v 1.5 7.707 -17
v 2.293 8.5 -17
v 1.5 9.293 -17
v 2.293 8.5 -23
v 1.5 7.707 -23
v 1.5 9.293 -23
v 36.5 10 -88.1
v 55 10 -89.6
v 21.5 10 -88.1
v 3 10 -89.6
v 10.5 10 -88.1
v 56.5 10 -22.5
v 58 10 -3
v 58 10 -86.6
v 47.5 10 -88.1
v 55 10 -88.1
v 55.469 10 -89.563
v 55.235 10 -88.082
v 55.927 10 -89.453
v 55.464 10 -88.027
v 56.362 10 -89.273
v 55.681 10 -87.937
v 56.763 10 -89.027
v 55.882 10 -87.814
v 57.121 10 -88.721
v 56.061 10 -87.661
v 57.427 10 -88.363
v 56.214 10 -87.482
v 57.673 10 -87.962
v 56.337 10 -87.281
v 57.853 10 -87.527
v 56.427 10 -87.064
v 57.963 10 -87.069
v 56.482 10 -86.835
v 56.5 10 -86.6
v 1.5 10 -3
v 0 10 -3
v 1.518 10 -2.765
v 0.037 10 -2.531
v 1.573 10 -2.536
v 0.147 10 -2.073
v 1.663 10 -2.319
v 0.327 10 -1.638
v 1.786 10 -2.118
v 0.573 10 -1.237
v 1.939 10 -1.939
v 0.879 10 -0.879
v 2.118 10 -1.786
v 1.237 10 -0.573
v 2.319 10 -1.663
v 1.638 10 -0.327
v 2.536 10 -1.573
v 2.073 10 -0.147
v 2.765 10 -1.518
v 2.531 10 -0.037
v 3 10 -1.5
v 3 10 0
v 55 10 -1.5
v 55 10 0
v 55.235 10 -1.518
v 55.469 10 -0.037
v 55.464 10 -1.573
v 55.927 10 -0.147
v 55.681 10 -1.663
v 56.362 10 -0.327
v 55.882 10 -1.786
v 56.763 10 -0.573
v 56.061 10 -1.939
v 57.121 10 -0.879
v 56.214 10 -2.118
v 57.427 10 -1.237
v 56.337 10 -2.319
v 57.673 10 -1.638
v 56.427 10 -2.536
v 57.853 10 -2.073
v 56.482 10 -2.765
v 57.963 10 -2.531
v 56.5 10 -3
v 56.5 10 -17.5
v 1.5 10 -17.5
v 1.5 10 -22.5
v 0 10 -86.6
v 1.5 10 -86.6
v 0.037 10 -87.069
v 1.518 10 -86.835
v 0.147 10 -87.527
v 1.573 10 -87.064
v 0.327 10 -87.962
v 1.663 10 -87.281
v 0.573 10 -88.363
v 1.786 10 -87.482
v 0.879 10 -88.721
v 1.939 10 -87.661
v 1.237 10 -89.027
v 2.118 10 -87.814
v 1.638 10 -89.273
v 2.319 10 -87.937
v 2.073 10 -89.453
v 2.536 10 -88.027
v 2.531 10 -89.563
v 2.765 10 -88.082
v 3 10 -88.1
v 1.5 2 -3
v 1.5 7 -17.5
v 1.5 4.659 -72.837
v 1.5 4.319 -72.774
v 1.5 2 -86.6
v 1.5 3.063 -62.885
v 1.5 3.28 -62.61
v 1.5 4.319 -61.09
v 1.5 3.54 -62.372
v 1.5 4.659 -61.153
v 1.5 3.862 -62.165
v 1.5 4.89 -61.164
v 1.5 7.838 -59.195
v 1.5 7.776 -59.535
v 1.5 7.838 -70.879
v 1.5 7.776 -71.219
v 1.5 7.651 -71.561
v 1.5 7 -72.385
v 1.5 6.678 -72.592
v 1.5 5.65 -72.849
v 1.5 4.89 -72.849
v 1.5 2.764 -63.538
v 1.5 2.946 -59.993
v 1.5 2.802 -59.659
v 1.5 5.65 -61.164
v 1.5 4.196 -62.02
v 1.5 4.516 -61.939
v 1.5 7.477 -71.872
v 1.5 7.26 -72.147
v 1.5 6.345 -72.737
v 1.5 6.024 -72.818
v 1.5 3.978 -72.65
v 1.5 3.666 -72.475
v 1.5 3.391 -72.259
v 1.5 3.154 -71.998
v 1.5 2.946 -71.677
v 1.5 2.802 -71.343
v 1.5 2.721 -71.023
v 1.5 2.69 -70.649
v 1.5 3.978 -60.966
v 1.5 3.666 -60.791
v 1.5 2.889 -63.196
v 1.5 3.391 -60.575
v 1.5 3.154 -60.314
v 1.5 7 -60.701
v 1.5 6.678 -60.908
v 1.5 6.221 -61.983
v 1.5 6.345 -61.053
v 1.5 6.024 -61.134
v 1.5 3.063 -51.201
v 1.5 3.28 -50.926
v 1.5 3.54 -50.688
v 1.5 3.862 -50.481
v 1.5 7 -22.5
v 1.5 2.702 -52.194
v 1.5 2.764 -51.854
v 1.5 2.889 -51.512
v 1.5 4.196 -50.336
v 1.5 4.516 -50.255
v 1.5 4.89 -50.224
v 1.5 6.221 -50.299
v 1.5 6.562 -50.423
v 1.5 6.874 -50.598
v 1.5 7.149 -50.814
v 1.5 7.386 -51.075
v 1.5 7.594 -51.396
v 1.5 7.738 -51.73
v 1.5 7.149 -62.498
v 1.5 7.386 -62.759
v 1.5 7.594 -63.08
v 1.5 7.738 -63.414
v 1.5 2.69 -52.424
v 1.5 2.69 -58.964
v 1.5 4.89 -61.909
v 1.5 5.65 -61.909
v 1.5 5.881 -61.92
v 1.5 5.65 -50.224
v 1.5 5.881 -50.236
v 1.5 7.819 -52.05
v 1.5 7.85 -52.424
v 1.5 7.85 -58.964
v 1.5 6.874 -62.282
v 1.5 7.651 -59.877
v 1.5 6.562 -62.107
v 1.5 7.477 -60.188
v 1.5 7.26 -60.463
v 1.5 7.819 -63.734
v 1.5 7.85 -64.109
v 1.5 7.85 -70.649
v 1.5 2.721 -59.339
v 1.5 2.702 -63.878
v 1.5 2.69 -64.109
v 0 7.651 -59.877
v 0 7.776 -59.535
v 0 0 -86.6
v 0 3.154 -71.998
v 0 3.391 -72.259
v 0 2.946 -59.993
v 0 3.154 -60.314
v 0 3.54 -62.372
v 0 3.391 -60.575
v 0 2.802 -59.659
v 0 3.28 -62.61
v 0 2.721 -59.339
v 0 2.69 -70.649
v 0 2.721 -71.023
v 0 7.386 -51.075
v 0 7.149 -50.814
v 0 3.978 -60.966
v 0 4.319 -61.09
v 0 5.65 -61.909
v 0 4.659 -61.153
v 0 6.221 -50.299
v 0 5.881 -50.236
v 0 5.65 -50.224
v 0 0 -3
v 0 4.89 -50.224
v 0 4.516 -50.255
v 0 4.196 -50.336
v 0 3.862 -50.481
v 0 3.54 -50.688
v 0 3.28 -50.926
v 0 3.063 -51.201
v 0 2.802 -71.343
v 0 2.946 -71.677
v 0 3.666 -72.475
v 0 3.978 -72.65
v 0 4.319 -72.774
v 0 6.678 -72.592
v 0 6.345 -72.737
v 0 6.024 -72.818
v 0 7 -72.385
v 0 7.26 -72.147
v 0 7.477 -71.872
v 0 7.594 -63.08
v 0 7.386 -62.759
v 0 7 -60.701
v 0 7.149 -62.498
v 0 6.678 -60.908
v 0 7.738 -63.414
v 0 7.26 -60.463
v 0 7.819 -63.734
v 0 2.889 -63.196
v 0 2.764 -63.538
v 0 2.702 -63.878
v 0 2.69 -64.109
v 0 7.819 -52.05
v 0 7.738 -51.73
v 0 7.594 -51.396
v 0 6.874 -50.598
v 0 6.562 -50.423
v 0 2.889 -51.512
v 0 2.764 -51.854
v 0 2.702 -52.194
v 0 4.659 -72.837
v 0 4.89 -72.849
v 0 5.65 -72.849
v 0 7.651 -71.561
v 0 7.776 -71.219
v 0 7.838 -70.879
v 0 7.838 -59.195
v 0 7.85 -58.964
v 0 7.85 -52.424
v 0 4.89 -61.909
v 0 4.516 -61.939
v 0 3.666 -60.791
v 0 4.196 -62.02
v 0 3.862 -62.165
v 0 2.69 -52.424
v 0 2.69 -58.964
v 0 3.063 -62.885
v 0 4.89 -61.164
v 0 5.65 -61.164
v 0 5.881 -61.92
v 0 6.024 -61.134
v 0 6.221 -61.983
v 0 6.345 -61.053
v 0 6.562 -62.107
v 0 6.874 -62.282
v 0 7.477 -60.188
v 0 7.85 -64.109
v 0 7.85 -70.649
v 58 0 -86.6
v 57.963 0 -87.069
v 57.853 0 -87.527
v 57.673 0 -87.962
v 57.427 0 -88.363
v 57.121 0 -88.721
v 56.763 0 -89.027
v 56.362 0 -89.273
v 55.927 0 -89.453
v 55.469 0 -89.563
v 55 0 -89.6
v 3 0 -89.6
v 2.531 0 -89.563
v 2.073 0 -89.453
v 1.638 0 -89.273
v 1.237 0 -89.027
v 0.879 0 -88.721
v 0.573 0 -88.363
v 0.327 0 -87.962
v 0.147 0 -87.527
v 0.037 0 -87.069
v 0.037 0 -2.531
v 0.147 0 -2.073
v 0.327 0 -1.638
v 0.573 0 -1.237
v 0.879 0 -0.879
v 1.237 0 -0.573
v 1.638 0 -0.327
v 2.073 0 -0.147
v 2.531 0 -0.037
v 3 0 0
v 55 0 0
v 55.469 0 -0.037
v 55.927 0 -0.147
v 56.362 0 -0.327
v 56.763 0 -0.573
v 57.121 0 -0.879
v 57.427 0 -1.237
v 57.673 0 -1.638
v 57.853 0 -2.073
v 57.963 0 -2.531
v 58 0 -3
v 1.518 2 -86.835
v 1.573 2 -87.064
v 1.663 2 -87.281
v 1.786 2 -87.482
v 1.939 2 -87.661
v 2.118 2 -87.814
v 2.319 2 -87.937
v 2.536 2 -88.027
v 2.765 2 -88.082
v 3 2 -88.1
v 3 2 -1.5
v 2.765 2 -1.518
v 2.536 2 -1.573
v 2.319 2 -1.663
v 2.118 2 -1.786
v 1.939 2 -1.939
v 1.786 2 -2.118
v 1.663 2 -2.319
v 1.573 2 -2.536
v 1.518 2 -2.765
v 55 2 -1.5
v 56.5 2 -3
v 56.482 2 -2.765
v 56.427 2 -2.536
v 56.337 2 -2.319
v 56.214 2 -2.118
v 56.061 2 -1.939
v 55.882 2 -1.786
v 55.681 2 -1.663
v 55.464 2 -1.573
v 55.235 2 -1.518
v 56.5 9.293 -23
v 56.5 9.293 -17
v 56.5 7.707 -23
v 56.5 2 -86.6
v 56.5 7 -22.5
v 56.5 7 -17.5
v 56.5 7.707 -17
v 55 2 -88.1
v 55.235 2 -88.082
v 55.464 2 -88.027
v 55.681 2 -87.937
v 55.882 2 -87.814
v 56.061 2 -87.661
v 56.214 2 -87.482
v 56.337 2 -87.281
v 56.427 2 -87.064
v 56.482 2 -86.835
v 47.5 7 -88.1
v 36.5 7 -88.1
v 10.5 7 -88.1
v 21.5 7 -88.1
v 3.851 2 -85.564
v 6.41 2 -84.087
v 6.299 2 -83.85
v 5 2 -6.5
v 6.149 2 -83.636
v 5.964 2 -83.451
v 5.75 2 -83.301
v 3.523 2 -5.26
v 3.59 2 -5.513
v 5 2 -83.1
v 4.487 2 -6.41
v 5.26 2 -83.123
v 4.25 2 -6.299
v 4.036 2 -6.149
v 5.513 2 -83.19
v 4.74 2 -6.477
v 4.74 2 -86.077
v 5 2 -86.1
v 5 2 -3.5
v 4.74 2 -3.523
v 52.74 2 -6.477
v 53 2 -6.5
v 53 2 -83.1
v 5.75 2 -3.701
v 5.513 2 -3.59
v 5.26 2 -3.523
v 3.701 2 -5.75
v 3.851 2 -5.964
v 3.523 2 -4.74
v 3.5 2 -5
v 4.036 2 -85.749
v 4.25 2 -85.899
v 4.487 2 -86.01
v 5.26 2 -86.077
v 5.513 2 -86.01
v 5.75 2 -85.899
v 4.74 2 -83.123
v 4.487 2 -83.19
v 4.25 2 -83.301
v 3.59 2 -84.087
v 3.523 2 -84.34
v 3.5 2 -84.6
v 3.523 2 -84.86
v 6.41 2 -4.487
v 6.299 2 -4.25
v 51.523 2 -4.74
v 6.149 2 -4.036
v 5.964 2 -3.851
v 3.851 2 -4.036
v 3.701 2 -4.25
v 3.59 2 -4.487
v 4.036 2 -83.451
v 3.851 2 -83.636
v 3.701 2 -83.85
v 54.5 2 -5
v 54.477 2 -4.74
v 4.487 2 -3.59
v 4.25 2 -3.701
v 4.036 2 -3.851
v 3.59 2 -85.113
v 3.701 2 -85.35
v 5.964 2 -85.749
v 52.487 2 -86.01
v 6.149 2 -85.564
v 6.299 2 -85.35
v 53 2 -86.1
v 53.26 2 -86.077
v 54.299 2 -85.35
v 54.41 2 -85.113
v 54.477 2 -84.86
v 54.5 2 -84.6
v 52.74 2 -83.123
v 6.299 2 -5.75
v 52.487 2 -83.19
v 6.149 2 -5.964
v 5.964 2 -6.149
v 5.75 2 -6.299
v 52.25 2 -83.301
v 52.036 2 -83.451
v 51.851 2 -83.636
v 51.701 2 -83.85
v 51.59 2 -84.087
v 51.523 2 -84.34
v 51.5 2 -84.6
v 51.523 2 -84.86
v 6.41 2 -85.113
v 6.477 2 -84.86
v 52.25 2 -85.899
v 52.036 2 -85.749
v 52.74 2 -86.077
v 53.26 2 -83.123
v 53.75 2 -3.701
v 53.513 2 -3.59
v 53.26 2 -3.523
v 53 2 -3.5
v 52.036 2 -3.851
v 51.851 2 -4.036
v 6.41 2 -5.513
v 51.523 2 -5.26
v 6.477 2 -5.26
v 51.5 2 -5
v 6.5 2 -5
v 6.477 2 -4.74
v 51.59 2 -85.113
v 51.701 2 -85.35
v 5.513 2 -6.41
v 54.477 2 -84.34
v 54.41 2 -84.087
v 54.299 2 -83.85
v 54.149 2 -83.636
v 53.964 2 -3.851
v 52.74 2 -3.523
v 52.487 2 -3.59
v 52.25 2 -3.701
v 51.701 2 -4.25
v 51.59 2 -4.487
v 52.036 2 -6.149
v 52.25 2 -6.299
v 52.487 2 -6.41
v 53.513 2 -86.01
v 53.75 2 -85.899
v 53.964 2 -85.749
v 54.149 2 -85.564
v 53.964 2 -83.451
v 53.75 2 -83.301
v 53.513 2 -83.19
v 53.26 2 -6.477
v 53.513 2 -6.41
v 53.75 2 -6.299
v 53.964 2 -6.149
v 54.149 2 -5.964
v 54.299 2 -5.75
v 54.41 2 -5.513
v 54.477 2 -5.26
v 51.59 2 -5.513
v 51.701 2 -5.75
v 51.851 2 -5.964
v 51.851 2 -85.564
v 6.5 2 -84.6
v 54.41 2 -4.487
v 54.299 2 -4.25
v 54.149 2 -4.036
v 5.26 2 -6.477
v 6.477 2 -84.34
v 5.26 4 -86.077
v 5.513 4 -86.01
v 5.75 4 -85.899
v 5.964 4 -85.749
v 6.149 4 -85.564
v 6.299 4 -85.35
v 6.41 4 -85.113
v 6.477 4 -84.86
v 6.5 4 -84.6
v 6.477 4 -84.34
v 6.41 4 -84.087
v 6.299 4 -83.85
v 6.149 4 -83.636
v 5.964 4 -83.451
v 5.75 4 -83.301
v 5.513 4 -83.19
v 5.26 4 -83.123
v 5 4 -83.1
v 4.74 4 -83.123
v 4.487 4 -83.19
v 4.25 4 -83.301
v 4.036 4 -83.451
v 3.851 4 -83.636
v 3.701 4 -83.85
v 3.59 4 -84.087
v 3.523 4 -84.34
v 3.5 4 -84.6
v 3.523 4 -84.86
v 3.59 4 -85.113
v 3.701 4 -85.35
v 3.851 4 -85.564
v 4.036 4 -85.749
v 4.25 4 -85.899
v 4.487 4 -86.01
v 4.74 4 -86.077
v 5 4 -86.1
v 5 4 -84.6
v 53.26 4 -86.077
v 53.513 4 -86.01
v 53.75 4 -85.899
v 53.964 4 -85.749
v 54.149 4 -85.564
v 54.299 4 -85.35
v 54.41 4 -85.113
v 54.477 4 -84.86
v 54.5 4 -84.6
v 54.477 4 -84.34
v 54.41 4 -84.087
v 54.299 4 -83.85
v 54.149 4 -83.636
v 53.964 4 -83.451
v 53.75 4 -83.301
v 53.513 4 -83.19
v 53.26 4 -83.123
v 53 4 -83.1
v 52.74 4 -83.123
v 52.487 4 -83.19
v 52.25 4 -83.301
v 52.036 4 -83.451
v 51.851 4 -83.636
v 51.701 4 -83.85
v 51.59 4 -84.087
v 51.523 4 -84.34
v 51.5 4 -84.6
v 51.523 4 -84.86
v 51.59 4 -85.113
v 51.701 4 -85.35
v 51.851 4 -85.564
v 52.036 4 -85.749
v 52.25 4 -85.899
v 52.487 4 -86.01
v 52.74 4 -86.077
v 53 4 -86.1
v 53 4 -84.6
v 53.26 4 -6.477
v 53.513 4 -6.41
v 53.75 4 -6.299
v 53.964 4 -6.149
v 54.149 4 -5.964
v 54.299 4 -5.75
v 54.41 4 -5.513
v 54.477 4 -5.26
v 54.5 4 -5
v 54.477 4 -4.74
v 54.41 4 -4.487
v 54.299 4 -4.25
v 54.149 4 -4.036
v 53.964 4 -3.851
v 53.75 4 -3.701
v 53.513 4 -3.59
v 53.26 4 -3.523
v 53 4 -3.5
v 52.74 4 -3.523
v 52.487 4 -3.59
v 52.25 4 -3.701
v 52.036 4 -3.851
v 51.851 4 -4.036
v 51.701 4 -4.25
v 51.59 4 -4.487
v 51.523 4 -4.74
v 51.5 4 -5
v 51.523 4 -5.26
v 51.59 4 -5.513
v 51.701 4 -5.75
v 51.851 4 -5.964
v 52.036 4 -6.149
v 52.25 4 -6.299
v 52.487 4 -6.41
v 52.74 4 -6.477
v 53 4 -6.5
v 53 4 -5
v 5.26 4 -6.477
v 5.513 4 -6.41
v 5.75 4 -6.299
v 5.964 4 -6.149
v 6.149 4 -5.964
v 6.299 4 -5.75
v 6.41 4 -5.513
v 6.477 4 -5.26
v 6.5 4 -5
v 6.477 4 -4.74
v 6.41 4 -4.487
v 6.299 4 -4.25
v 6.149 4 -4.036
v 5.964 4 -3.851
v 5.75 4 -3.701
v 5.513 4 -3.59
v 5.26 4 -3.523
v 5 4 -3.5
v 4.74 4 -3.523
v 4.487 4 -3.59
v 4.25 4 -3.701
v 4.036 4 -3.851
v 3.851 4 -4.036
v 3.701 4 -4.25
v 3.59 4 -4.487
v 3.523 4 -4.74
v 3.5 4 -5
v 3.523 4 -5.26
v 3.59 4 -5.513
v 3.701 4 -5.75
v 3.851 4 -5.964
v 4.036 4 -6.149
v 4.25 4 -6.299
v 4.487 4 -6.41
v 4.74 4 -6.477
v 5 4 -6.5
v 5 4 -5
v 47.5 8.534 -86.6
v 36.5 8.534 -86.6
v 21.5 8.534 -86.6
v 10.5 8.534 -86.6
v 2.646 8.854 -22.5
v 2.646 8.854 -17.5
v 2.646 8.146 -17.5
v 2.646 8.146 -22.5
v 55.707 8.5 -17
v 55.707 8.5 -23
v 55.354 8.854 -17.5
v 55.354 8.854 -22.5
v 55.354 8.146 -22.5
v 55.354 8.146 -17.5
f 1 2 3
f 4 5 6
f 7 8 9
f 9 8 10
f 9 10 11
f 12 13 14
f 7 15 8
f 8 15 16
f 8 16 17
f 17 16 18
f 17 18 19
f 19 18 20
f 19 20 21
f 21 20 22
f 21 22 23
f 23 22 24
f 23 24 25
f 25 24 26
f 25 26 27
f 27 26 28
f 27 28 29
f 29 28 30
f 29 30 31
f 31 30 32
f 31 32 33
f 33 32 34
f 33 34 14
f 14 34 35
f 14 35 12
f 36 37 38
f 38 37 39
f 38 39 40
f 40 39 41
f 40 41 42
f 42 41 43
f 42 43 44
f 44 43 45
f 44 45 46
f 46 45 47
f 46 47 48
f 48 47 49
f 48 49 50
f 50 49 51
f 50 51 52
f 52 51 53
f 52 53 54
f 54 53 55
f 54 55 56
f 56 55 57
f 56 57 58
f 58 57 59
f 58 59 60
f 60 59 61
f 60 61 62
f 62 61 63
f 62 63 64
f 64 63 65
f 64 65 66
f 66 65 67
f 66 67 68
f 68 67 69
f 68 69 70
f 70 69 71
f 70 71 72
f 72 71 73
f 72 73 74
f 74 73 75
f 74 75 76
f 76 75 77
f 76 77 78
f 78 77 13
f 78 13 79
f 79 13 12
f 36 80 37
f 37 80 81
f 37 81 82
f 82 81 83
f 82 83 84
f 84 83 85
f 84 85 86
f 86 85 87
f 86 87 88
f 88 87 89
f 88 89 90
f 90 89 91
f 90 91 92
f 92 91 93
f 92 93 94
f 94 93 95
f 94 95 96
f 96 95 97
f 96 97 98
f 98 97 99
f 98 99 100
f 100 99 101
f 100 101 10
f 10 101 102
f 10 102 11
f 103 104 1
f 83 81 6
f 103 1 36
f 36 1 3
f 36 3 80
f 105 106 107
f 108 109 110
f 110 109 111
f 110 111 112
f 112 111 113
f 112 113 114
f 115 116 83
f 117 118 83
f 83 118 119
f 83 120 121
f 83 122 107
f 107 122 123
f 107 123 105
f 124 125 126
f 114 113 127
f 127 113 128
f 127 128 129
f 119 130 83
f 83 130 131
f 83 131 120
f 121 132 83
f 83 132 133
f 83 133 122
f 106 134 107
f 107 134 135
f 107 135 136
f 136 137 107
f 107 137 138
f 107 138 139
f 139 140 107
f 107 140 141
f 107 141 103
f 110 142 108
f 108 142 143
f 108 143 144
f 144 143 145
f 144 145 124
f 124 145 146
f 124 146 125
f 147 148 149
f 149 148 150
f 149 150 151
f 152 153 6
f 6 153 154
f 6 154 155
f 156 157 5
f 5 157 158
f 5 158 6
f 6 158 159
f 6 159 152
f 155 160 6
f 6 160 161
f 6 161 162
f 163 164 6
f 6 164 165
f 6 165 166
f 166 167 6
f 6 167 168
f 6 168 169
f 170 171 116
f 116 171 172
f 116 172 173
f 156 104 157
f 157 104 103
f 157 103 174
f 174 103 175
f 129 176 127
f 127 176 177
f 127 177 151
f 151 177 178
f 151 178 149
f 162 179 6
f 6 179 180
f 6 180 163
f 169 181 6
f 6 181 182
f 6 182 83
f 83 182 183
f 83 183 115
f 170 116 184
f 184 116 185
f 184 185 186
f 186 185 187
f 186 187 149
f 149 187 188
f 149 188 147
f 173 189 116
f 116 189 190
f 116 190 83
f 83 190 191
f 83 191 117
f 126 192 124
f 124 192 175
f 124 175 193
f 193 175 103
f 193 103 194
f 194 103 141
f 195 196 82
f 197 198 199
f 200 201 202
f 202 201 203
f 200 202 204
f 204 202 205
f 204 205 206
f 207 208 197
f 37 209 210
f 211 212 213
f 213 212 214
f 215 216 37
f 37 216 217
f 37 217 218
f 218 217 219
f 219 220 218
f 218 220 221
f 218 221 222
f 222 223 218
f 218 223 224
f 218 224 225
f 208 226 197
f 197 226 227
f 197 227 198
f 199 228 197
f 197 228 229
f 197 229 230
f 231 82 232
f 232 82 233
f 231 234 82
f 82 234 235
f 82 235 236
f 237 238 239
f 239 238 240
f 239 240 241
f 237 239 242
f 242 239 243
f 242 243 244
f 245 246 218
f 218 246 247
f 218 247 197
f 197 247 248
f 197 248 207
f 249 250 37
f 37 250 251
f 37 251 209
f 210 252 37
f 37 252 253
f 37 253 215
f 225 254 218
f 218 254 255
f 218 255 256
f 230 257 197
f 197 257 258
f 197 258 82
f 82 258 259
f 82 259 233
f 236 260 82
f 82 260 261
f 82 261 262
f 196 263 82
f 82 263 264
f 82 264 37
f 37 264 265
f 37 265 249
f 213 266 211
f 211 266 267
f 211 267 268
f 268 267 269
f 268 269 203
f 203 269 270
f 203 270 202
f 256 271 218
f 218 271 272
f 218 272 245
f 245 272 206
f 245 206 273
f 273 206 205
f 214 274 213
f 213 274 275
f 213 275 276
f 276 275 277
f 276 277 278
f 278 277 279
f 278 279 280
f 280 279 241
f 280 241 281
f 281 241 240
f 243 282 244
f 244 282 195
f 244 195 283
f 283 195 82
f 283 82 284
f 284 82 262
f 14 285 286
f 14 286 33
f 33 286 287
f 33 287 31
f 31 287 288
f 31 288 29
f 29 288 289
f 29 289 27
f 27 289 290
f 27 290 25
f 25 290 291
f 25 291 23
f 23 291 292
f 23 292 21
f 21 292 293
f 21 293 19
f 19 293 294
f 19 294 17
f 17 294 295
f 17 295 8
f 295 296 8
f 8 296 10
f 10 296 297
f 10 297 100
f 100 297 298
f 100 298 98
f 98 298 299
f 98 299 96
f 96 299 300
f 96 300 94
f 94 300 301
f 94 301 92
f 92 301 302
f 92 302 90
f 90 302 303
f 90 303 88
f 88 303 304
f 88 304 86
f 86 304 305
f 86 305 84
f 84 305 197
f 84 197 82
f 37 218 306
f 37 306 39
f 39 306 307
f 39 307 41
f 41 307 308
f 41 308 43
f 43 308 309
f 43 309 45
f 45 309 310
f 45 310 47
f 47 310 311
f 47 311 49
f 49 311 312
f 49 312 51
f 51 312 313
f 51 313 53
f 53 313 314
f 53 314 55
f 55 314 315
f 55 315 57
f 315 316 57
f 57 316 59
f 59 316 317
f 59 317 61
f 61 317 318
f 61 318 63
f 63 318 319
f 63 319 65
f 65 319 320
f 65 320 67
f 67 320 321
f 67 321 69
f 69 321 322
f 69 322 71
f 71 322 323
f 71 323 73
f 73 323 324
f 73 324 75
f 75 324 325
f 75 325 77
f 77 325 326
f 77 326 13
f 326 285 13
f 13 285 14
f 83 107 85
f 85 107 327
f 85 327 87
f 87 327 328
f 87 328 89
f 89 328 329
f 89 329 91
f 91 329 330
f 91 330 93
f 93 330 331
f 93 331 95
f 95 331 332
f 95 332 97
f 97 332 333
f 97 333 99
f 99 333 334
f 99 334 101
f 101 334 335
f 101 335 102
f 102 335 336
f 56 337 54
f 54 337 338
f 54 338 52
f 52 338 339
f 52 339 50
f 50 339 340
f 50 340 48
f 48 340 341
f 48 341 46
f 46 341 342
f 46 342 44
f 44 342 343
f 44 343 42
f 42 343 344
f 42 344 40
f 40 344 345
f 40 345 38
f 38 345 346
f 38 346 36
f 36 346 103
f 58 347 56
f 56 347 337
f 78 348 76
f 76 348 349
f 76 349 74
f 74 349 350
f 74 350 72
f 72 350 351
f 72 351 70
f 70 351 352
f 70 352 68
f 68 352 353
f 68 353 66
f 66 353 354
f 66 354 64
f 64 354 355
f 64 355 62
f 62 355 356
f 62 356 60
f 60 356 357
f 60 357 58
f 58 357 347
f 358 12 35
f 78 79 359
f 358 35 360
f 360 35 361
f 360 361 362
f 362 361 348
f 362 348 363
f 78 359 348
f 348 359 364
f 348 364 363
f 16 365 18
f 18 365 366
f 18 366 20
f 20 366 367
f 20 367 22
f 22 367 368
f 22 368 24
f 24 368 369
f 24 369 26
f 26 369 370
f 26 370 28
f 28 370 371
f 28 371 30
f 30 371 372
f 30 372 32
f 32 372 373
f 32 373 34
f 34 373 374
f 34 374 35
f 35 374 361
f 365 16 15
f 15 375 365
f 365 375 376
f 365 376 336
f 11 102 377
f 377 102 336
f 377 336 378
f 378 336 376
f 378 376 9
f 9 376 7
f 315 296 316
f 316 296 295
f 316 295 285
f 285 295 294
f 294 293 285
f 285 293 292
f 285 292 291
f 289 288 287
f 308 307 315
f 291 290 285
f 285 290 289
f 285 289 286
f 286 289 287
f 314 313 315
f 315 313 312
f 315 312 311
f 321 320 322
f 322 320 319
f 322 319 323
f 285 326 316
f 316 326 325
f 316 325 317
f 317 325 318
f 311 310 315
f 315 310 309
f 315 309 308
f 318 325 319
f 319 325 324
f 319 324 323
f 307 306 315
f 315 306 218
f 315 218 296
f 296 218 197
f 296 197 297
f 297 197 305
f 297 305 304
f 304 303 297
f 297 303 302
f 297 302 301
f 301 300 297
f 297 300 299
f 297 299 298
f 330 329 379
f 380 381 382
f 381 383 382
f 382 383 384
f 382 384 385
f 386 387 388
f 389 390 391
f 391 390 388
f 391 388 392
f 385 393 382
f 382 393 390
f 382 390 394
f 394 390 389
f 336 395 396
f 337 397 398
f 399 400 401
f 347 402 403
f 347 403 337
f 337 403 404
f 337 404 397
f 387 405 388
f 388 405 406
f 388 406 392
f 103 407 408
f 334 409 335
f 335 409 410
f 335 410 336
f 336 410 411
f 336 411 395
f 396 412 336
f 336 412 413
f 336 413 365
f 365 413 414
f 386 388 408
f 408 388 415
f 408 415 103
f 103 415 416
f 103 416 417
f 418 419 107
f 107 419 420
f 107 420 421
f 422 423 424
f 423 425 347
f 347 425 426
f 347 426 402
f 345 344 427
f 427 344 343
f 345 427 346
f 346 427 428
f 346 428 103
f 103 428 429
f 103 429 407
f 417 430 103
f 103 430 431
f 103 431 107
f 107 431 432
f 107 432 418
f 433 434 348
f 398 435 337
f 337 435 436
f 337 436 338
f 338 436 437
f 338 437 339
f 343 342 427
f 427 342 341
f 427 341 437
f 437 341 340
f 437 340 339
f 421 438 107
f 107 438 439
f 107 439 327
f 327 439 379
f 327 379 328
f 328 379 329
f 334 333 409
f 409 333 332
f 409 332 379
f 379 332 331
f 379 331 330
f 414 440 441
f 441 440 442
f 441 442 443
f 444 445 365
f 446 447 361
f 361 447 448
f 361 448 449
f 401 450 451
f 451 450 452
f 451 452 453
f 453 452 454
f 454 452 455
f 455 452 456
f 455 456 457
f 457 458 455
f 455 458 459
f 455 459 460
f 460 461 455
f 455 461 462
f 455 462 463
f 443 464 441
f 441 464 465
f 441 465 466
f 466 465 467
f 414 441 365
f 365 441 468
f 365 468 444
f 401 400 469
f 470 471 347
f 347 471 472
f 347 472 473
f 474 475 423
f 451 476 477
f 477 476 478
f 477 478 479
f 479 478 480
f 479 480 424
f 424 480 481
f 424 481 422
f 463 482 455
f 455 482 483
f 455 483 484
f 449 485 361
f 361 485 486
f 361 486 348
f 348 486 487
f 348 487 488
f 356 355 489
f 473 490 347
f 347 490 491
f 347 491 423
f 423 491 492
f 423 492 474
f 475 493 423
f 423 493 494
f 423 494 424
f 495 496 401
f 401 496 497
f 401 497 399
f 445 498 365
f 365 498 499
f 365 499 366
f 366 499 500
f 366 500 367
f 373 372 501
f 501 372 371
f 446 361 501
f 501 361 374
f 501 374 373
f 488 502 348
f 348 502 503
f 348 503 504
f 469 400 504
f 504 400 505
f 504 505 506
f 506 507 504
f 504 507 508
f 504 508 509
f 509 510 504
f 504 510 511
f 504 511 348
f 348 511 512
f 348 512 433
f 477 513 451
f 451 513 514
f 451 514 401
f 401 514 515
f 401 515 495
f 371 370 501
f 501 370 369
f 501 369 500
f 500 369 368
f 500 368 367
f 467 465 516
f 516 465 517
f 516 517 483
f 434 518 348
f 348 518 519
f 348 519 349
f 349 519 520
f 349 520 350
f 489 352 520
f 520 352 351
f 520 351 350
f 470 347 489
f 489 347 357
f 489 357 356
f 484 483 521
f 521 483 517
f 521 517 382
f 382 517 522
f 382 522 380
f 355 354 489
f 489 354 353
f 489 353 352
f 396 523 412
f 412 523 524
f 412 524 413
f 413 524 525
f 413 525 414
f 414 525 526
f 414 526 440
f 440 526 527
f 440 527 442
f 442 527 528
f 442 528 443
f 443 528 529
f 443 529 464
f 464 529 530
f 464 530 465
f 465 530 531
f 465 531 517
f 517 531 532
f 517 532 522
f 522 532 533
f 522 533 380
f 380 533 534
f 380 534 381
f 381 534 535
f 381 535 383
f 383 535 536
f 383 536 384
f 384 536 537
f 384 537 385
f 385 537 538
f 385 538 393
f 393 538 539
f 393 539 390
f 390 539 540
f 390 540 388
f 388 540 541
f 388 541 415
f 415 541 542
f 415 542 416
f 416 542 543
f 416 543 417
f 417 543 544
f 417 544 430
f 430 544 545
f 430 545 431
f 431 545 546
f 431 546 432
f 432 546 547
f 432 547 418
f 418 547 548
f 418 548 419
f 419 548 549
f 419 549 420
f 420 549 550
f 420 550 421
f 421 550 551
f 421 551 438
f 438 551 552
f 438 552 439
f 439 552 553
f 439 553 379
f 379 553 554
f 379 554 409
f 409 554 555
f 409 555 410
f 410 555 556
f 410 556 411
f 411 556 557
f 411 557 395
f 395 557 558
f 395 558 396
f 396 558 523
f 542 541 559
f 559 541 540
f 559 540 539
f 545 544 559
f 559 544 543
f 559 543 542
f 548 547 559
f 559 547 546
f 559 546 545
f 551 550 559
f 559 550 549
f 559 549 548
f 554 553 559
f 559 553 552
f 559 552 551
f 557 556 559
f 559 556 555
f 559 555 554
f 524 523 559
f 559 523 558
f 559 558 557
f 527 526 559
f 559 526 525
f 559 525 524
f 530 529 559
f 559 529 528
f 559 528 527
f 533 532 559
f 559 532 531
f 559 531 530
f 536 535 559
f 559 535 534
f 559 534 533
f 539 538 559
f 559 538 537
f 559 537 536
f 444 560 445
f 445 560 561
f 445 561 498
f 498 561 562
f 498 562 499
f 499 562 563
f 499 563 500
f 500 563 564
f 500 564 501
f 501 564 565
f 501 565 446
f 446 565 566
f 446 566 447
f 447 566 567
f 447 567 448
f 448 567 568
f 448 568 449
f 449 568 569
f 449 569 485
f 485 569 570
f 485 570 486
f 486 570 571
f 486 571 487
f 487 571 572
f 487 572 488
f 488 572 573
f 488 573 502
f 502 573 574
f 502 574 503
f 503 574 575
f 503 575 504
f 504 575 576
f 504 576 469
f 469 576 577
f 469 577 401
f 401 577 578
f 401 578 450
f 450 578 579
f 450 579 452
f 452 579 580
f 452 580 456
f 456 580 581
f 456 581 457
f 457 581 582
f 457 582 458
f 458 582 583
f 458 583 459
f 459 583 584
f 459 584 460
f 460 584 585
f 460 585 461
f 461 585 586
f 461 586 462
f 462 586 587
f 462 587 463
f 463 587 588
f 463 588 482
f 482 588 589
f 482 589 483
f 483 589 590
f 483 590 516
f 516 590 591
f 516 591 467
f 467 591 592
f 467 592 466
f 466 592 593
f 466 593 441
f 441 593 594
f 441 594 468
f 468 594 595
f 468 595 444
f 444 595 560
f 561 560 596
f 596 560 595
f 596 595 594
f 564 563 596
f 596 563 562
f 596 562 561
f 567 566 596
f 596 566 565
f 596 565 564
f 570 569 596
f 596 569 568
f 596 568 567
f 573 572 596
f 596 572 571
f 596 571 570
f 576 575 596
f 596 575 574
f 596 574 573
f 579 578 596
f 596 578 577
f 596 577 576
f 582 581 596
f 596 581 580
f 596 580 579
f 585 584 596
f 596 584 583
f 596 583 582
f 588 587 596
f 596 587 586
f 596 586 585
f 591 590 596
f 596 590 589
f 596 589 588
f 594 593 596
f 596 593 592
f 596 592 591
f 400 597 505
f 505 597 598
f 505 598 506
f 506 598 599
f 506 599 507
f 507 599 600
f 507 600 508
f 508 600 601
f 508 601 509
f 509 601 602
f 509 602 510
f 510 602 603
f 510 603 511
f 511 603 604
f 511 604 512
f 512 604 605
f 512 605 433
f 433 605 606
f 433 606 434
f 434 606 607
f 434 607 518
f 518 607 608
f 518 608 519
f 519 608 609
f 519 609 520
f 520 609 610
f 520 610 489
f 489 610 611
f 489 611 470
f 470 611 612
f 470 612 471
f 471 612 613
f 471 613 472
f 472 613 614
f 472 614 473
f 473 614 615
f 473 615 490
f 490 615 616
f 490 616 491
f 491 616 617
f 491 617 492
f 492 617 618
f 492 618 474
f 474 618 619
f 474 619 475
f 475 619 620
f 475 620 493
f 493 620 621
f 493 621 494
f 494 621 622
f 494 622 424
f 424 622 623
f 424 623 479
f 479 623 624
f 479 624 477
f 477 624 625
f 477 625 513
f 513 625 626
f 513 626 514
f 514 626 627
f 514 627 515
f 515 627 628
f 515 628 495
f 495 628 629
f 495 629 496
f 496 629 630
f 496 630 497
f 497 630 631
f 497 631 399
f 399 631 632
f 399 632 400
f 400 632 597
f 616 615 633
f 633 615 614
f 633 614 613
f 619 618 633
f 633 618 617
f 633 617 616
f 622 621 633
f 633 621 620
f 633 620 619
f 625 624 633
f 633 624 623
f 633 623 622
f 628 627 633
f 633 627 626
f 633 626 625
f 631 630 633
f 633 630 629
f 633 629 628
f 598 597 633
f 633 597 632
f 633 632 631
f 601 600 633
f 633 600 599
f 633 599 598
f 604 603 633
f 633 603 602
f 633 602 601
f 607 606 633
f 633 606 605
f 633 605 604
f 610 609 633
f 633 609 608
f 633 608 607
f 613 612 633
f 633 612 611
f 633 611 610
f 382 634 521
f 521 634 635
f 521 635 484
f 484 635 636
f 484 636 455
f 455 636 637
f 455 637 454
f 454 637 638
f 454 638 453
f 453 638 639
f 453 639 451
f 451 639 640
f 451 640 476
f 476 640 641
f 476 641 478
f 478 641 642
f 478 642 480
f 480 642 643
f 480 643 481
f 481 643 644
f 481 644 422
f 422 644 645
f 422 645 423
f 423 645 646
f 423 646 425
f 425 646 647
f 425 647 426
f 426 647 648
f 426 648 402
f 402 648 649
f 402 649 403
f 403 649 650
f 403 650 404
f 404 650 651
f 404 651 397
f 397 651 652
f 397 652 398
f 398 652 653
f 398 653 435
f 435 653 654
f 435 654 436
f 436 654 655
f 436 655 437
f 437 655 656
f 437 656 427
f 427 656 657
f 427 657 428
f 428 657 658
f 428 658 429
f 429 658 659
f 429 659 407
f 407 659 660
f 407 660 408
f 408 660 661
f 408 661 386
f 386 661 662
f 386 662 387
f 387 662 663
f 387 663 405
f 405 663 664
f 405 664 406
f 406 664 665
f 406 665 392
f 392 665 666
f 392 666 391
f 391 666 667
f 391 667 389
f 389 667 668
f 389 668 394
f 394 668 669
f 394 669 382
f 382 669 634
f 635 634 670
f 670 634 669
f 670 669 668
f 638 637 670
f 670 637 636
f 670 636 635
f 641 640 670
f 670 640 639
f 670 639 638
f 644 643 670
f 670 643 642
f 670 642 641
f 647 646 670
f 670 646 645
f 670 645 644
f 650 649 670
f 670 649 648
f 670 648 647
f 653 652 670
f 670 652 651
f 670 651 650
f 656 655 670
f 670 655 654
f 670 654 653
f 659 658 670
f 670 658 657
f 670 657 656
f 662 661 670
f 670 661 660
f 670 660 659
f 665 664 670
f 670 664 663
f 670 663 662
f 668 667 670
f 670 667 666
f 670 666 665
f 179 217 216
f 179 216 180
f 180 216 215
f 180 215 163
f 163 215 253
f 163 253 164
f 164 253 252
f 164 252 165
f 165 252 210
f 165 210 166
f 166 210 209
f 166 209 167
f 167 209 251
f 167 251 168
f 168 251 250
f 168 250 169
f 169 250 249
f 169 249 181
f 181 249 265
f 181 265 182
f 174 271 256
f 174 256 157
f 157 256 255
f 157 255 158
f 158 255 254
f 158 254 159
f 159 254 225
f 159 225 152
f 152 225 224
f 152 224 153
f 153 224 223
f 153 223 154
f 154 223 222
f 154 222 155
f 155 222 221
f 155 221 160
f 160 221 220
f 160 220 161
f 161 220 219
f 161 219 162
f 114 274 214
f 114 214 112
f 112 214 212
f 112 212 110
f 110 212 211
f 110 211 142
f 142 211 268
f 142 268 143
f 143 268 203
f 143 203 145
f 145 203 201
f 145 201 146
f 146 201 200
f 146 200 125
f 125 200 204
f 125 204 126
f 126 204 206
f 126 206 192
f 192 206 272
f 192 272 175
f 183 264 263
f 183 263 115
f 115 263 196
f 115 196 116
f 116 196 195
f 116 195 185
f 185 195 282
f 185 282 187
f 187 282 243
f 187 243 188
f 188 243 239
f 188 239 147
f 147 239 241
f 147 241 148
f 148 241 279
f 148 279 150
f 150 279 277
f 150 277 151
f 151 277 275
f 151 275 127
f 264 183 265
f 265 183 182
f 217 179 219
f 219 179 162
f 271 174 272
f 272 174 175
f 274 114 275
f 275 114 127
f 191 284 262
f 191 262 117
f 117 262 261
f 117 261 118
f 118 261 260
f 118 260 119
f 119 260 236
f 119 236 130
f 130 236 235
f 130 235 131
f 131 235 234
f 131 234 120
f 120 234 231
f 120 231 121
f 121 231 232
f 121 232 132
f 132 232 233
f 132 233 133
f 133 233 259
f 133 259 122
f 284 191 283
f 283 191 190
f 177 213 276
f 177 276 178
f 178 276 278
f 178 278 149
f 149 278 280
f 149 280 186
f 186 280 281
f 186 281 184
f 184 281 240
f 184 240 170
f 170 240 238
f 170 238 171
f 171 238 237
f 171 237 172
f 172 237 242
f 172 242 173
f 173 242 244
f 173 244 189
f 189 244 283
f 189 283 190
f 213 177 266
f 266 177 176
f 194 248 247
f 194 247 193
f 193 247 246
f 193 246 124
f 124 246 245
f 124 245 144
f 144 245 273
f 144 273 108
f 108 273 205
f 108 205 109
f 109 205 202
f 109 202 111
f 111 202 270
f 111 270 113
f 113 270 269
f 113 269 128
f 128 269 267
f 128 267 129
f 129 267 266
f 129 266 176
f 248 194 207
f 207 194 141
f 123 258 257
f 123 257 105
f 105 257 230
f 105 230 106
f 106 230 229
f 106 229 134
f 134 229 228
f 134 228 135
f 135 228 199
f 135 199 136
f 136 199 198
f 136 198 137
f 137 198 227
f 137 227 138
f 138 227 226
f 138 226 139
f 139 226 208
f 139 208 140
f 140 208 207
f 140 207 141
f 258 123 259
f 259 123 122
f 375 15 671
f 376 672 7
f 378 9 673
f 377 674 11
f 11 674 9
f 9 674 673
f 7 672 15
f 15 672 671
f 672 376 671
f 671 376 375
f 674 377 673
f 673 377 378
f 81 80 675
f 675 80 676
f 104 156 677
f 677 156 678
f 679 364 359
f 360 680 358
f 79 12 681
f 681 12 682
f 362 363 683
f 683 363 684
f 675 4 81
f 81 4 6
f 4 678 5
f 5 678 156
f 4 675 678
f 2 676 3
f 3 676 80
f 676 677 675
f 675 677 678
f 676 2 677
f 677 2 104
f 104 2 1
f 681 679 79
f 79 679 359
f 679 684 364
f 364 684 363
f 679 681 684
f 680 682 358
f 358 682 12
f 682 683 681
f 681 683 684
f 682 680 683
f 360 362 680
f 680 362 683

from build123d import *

# Parameters (mm, degrees)
EXTRUDE_1_DEPTH     = 2
EXTRUDE_2_DEPTH     = 11
SKETCH_5_R          = 1.5
EXTRUDE_3_DEPTH     = 2
CUT_EXTRUDE_1_DEPTH = 2
CUT_EXTRUDE_START   = -3
CUT_EXTRUDE_2_DEPTH = 3
SKETCH_8_W          = 11
SKETCH_8_H          = 3
EXTRUDE_4_DEPTH     = 1.5
CUT_EXTRUDE_3_DEPTH = 40
SKETCH_11_W         = 6
SKETCH_11_H         = 3
EXTRUDE_5_DEPTH     = 1.5
CUT_EXTRUDE_4_DEPTH = 7
SKETCH_13_W         = 6
SKETCH_13_H         = 3
EXTRUDE_6_DEPTH     = 1.5
CUT_EXTRUDE_5_DEPTH = 7
CHAMFER_1_SIZE      = 0.5
CHAMFER_2_SIZE      = 0.5


with BuildPart() as part:
    # 草图1 → 凸台-拉伸1 (new body)
    with BuildSketch(Plane(origin=(0, 0, 0), x_dir=(1, 0, 0), z_dir=(0, 1, 0))):
        with BuildLine():
            Line((3, 0), (55, 0))
            ThreePointArc((55, 0), (57.121320344, 0.878679656), (58, 3))
            Line((58, 3), (58, 86.6))
            ThreePointArc((58, 86.6), (57.121320344, 88.721320344), (55, 89.6))
            Line((55, 89.6), (3, 89.6))
            ThreePointArc((3, 89.6), (0.878679656, 88.721320344), (0, 86.6))
            Line((0, 86.6), (0, 3))
            ThreePointArc((0, 3), (0.878679656, 0.878679656), (3, 0))
        make_face()
    extrude(amount=EXTRUDE_1_DEPTH)

    # 草图3 → 凸台-拉伸2 (add)
    with BuildSketch(Plane(origin=(0, 2, 0), x_dir=(1, 0, 0), z_dir=(0, 1, 0))):
        with BuildLine():
            Line((0, 86.6), (0, 3))
            ThreePointArc((0, 3), (0.878679656, 0.878679656), (3, 0))
            Line((3, 0), (55, 0))
            ThreePointArc((55, 0), (57.121320344, 0.878679656), (58, 3))
            Line((58, 3), (58, 86.6))
            ThreePointArc((58, 86.6), (57.121320344, 88.721320344), (55, 89.6))
            Line((55, 89.6), (3, 89.6))
            ThreePointArc((3, 89.6), (0.878679656, 88.721320344), (0, 86.6))
        make_face()
        with BuildLine():
            Line((1.5, 86.6), (1.5, 3))
            ThreePointArc((1.5, 3), (1.939339828, 1.939339828), (3, 1.5))
            Line((3, 1.5), (55, 1.5))
            ThreePointArc((55, 1.5), (56.060660172, 1.939339828), (56.5, 3))
            Line((56.5, 3), (56.5, 86.6))
            ThreePointArc((56.5, 86.6), (56.060660172, 87.660660172), (55, 88.1))
            Line((55, 88.1), (3, 88.1))
            ThreePointArc((3, 88.1), (1.939339828, 87.660660172), (1.5, 86.6))
        make_face(mode=Mode.SUBTRACT)
    extrude(amount=EXTRUDE_2_DEPTH)

    # 草图5 → 凸台-拉伸3 (add)
    with BuildSketch(Plane(origin=(0, 2, 0), x_dir=(1, 0, 0), z_dir=(0, 1, 0))):
        with Locations(Location((5, 84.6, 0), (0, 0, 270))):
            Circle(SKETCH_5_R)
        with Locations(Location((53, 84.6, 0), (0, 0, 90))):
            Circle(SKETCH_5_R)
        with Locations(Location((53, 5, 0), (0, 0, 270))):
            Circle(SKETCH_5_R)
        with Locations(Location((5, 5, 0), (0, 0, 90))):
            Circle(SKETCH_5_R)
    extrude(amount=EXTRUDE_3_DEPTH)

    # 草图6 → 切除-拉伸1 (cut)
    # profile 1 of 4: a face of its own
    with BuildSketch(Plane(origin=(0, 2, -82.999537719), x_dir=(0, 1, 0), z_dir=(-1, 0, 0))):
        with BuildLine():
            add(Edge.make_bspline(
                [(3.650025513, -10.151031112), (3.92482832, -10.151031112), (4.462198601, -10.245555275), (5.25406566, -10.746990965), (5.755501349, -11.538858023), (5.850025513, -12.076228304), (5.850025513, -12.351031112)],
                knots=[0, 0, 0, 0, 0.25, 0.5, 0.75, 1, 1, 1, 1], degree=3))
            Line((5.850025513, -12.351031112), (5.850025513, -18.891031112))
            add(Edge.make_bspline(
                [(5.850025513, -18.891031112), (5.850025513, -19.165833919), (5.755501349, -19.7032042), (5.25406566, -20.495071258), (4.462198601, -20.996506948), (3.92482832, -21.091031112), (3.650025513, -21.091031112)],
                knots=[0, 0, 0, 0, 0.25, 0.5, 0.75, 1, 1, 1, 1], degree=3))
            Line((3.650025513, -21.091031112), (2.890025513, -21.091031112))
            add(Edge.make_bspline(
                [(2.890025513, -21.091031112), (2.615222706, -21.091031112), (2.077852425, -20.996506948), (1.285985366, -20.495071258), (0.784549677, -19.7032042), (0.690025513, -19.165833919), (0.690025513, -18.891031112)],
                knots=[0, 0, 0, 0, 0.25, 0.5, 0.75, 1, 1, 1, 1], degree=3))
            Line((0.690025513, -18.891031112), (0.690025513, -12.351031112))
            add(Edge.make_bspline(
                [(0.690025513, -12.351031112), (0.690025513, -12.076228304), (0.784549677, -11.538858023), (1.285985366, -10.746990965), (2.077852425, -10.245555275), (2.615222706, -10.151031112), (2.890025513, -10.151031112)],
                knots=[0, 0, 0, 0, 0.25, 0.5, 0.75, 1, 1, 1, 1], degree=3))
            Line((2.890025513, -10.151031112), (3.650025513, -10.151031112))
        make_face()
        with BuildLine():
            Line((2.890025513, -11.151031112), (3.650025513, -11.151031112))
            add(Edge.make_bspline(
                [(3.650025513, -11.151031112), (4.352969238, -11.151031112), (4.850025513, -11.648087386), (4.850025513, -12.351031112)],
                knots=[0, 0, 0, 0, 1, 1, 1, 1], degree=3, weights=[1, 0.804737854, 0.804737854, 1]))
            Line((4.850025513, -12.351031112), (4.850025513, -18.891031112))
            add(Edge.make_bspline(
                [(4.850025513, -18.891031112), (4.850025513, -19.593974837), (4.352969238, -20.091031112), (3.650025513, -20.091031112)],
                knots=[0, 0, 0, 0, 1, 1, 1, 1], degree=3, weights=[1, 0.804737854, 0.804737854, 1]))
            Line((3.650025513, -20.091031112), (2.890025513, -20.091031112))
            add(Edge.make_bspline(
                [(2.890025513, -20.091031112), (2.187081788, -20.091031112), (1.690025513, -19.593974837), (1.690025513, -18.891031112)],
                knots=[0, 0, 0, 0, 1, 1, 1, 1], degree=3, weights=[1, 0.804737854, 0.804737854, 1]))
            Line((1.690025513, -18.891031112), (1.690025513, -12.351031112))
            add(Edge.make_bspline(
                [(1.690025513, -12.351031112), (1.690025513, -11.648087386), (2.187081788, -11.151031112), (2.890025513, -11.151031112)],
                knots=[0, 0, 0, 0, 1, 1, 1, 1], degree=3, weights=[1, 0.804737854, 0.804737854, 1]))
        make_face(mode=Mode.SUBTRACT)
    # profile 2 of 4: a face of its own
    with BuildSketch(Plane(origin=(0, 2, -82.999537719), x_dir=(0, 1, 0), z_dir=(-1, 0, 0))):
        with BuildLine():
            add(Edge.make_bspline(
                [(3.650025513, -11.151031112), (4.352969238, -11.151031112), (4.850025513, -11.648087386), (4.850025513, -12.351031112)],
                knots=[0, 0, 0, 0, 1, 1, 1, 1], degree=3, weights=[1, 0.804737854, 0.804737854, 1]))
            Line((4.850025513, -12.351031112), (4.850025513, -18.891031112))
            add(Edge.make_bspline(
                [(4.850025513, -18.891031112), (4.850025513, -19.593974837), (4.352969238, -20.091031112), (3.650025513, -20.091031112)],
                knots=[0, 0, 0, 0, 1, 1, 1, 1], degree=3, weights=[1, 0.804737854, 0.804737854, 1]))
            Line((3.650025513, -20.091031112), (2.890025513, -20.091031112))
            add(Edge.make_bspline(
                [(2.890025513, -20.091031112), (2.187081788, -20.091031112), (1.690025513, -19.593974837), (1.690025513, -18.891031112)],
                knots=[0, 0, 0, 0, 1, 1, 1, 1], degree=3, weights=[1, 0.804737854, 0.804737854, 1]))
            Line((1.690025513, -18.891031112), (1.690025513, -12.351031112))
            add(Edge.make_bspline(
                [(1.690025513, -12.351031112), (1.690025513, -11.648087386), (2.187081788, -11.151031112), (2.890025513, -11.151031112)],
                knots=[0, 0, 0, 0, 1, 1, 1, 1], degree=3, weights=[1, 0.804737854, 0.804737854, 1]))
            Line((2.890025513, -11.151031112), (3.650025513, -11.151031112))
        make_face()
    # profile 3 of 4: a face of its own
    with BuildSketch(Plane(origin=(0, 2, -82.999537719), x_dir=(0, 1, 0), z_dir=(-1, 0, 0))):
        with BuildLine():
            add(Edge.make_bspline(
                [(3.650025513, -21.83505448), (3.92482832, -21.83505448), (4.462198601, -21.929578643), (5.25406566, -22.431014333), (5.755501349, -23.222881391), (5.850025513, -23.760251672), (5.850025513, -24.03505448)],
                knots=[0, 0, 0, 0, 0.25, 0.5, 0.75, 1, 1, 1, 1], degree=3))
            Line((5.850025513, -24.03505448), (5.850025513, -30.57505448))
            add(Edge.make_bspline(
                [(5.850025513, -30.57505448), (5.850025513, -30.849857287), (5.755501349, -31.387227568), (5.25406566, -32.179094626), (4.462198601, -32.680530316), (3.92482832, -32.77505448), (3.650025513, -32.77505448)],
                knots=[0, 0, 0, 0, 0.25, 0.5, 0.75, 1, 1, 1, 1], degree=3))
            Line((3.650025513, -32.77505448), (2.890025513, -32.77505448))
            add(Edge.make_bspline(
                [(2.890025513, -32.77505448), (2.615222706, -32.77505448), (2.077852425, -32.680530316), (1.285985366, -32.179094626), (0.784549677, -31.387227568), (0.690025513, -30.849857287), (0.690025513, -30.57505448)],
                knots=[0, 0, 0, 0, 0.25, 0.5, 0.75, 1, 1, 1, 1], degree=3))
            Line((0.690025513, -30.57505448), (0.690025513, -24.03505448))
            add(Edge.make_bspline(
                [(0.690025513, -24.03505448), (0.690025513, -23.760251672), (0.784549677, -23.222881391), (1.285985366, -22.431014333), (2.077852425, -21.929578643), (2.615222706, -21.83505448), (2.890025513, -21.83505448)],
                knots=[0, 0, 0, 0, 0.25, 0.5, 0.75, 1, 1, 1, 1], degree=3))
            Line((2.890025513, -21.83505448), (3.650025513, -21.83505448))
        make_face()
        with BuildLine():
            Line((2.890025513, -22.83505448), (3.650025513, -22.83505448))
            add(Edge.make_bspline(
                [(3.650025513, -22.83505448), (4.352969238, -22.83505448), (4.850025513, -23.332110755), (4.850025513, -24.03505448)],
                knots=[0, 0, 0, 0, 1, 1, 1, 1], degree=3, weights=[1, 0.804737854, 0.804737854, 1]))
            Line((4.850025513, -24.03505448), (4.850025513, -30.57505448))
            add(Edge.make_bspline(
                [(4.850025513, -30.57505448), (4.850025513, -31.277998205), (4.352969238, -31.77505448), (3.650025513, -31.77505448)],
                knots=[0, 0, 0, 0, 1, 1, 1, 1], degree=3, weights=[1, 0.804737854, 0.804737854, 1]))
            Line((3.650025513, -31.77505448), (2.890025513, -31.77505448))
            add(Edge.make_bspline(
                [(2.890025513, -31.77505448), (2.187081788, -31.77505448), (1.690025513, -31.277998205), (1.690025513, -30.57505448)],
                knots=[0, 0, 0, 0, 1, 1, 1, 1], degree=3, weights=[1, 0.804737854, 0.804737854, 1]))
            Line((1.690025513, -30.57505448), (1.690025513, -24.03505448))
            add(Edge.make_bspline(
                [(1.690025513, -24.03505448), (1.690025513, -23.332110755), (2.187081788, -22.83505448), (2.890025513, -22.83505448)],
                knots=[0, 0, 0, 0, 1, 1, 1, 1], degree=3, weights=[1, 0.804737854, 0.804737854, 1]))
        make_face(mode=Mode.SUBTRACT)
    # profile 4 of 4: a face of its own
    with BuildSketch(Plane(origin=(0, 2, -82.999537719), x_dir=(0, 1, 0), z_dir=(-1, 0, 0))):
        with BuildLine():
            add(Edge.make_bspline(
                [(3.650025513, -22.83505448), (4.352969238, -22.83505448), (4.850025513, -23.332110755), (4.850025513, -24.03505448)],
                knots=[0, 0, 0, 0, 1, 1, 1, 1], degree=3, weights=[1, 0.804737854, 0.804737854, 1]))
            Line((4.850025513, -24.03505448), (4.850025513, -30.57505448))
            add(Edge.make_bspline(
                [(4.850025513, -30.57505448), (4.850025513, -31.277998205), (4.352969238, -31.77505448), (3.650025513, -31.77505448)],
                knots=[0, 0, 0, 0, 1, 1, 1, 1], degree=3, weights=[1, 0.804737854, 0.804737854, 1]))
            Line((3.650025513, -31.77505448), (2.890025513, -31.77505448))
            add(Edge.make_bspline(
                [(2.890025513, -31.77505448), (2.187081788, -31.77505448), (1.690025513, -31.277998205), (1.690025513, -30.57505448)],
                knots=[0, 0, 0, 0, 1, 1, 1, 1], degree=3, weights=[1, 0.804737854, 0.804737854, 1]))
            Line((1.690025513, -30.57505448), (1.690025513, -24.03505448))
            add(Edge.make_bspline(
                [(1.690025513, -24.03505448), (1.690025513, -23.332110755), (2.187081788, -22.83505448), (2.890025513, -22.83505448)],
                knots=[0, 0, 0, 0, 1, 1, 1, 1], degree=3, weights=[1, 0.804737854, 0.804737854, 1]))
            Line((2.890025513, -22.83505448), (3.650025513, -22.83505448))
        make_face()
    extrude(amount=-CUT_EXTRUDE_1_DEPTH, mode=Mode.SUBTRACT)

    # 草图7 → 切除-拉伸2 (cut)
    with BuildSketch(Plane(origin=(0, 13, 0), x_dir=(1, 0, 0), z_dir=(0, 1, 0)).offset(CUT_EXTRUDE_START)):
        with BuildLine():
            Line((0, 86.6), (0, 3))
            ThreePointArc((0, 3), (0.878679656, 0.878679656), (3, 0))
            Line((3, 0), (55, 0))
            ThreePointArc((55, 0), (57.121320344, 0.878679656), (58, 3))
            Line((58, 3), (58, 86.6))
            ThreePointArc((58, 86.6), (57.121320344, 88.721320344), (55, 89.6))
            Line((55, 89.6), (3, 89.6))
            ThreePointArc((3, 89.6), (0.878679656, 88.721320344), (0, 86.6))
        make_face()
        with BuildLine():
            Line((3, 1.5), (55, 1.5))
            ThreePointArc((55, 1.5), (56.060660172, 1.939339828), (56.5, 3))
            Line((56.5, 3), (56.5, 86.6))
            ThreePointArc((56.5, 86.6), (56.060660172, 87.660660172), (55, 88.1))
            Line((55, 88.1), (3, 88.1))
            ThreePointArc((3, 88.1), (1.939339828, 87.660660172), (1.5, 86.6))
            Line((1.5, 86.6), (1.5, 3))
            ThreePointArc((1.5, 3), (1.939339828, 1.939339828), (3, 1.5))
        make_face(mode=Mode.SUBTRACT)
    extrude(amount=CUT_EXTRUDE_2_DEPTH, mode=Mode.SUBTRACT)

    # 草图8 → 凸台-拉伸4 (add)
    with BuildSketch(Plane.XY.offset(-88.1)):
        with Locations((16, 8.5)):
            Rectangle(SKETCH_8_W, SKETCH_8_H)
        with Locations((42, 8.5)):
            Rectangle(SKETCH_8_W, SKETCH_8_H)
    extrude(amount=EXTRUDE_4_DEPTH)

    # 草图10 → 切除-拉伸3 (cut)
    with BuildSketch(Plane.ZY.offset(-10.5)):
        Polygon((-86.6, 10), (-88.1, 10), (-86.6, 8.534338043), align=None)
        Polygon((-86.6, 7), (-86.6, 8.534338043), (-88.1, 7), align=None)
    extrude(amount=-CUT_EXTRUDE_3_DEPTH, mode=Mode.SUBTRACT)

    # 草图11 → 凸台-拉伸5 (add)
    with BuildSketch(Plane(origin=(1.5, 0, 0), x_dir=(0, 0, -1), z_dir=(1, 0, 0))):
        with Locations((20, 8.5)):
            Rectangle(SKETCH_11_W, SKETCH_11_H)
    extrude(amount=EXTRUDE_5_DEPTH)

    # 草图12 → 切除-拉伸4 (cut)
    with BuildSketch(Plane.XY.offset(-17)):
        Polygon((1.5, 10), (3, 8.5), (3, 10), align=None)
        Polygon((3, 7), (3, 8.5), (1.5, 7), align=None)
    extrude(amount=-CUT_EXTRUDE_4_DEPTH, mode=Mode.SUBTRACT)

    # 草图13 → 凸台-拉伸6 (add)
    with BuildSketch(Plane.ZY.offset(-56.5)):
        with Locations((-20, 8.5)):
            Rectangle(SKETCH_13_W, SKETCH_13_H)
    extrude(amount=EXTRUDE_6_DEPTH)

    # 草图15 → 切除-拉伸5 (cut)
    with BuildSketch(Plane(origin=(0, 0, -23), x_dir=(-1, 0, 0), z_dir=(0, 0, -1))):
        Polygon((-55, 10), (-56.5, 10), (-55, 8.5), align=None)
        Polygon((-55, 7), (-55, 8.5), (-56.5, 7), align=None)
    extrude(amount=-CUT_EXTRUDE_5_DEPTH, mode=Mode.SUBTRACT)

    # 倒角1
    # the kernel refuses this chamfer: 0.5 mm, written as the material it takes off along each edge
    with BuildSketch(Plane(origin=(2.528595479, 8.5, -17.333333333), x_dir=(0.49999999999999983, 0.5000000000000011, -0.7071067811865469), z_dir=(0.8164965809277256, 1.025580099404569e-15, 0.5773502691896265))) as chamfer_1_piece_1:
        Polygon((-0.353553391, 0.204124145), (0.353553391, 0.204124145), (0, -0.40824829), align=None)
    extrude(amount=0.635085296, mode=Mode.SUBTRACT)
    with BuildSketch(Plane(origin=(2.528595479, 8.5, -22.666666667), x_dir=(0.49999999999999983, 0.5000000000000011, 0.7071067811865469), z_dir=(0.8164965809277256, 1.025580099404569e-15, -0.5773502691896265))) as chamfer_1_piece_2:
        Polygon((-0.353553391, -0.204124145), (0.353553391, -0.204124145), (0, 0.40824829), align=None)
    extrude(amount=0.635085296, mode=Mode.SUBTRACT)
    with BuildSketch(Plane(origin=(3, 8.5, -15.714158506), x_dir=(-0.6873969152646602, 0.726281956876687, 0), z_dir=(0, 0, -1))) as chamfer_1_piece_3:
        Polygon((CHAMFER_1_SIZE * 0.999621916911, -CHAMFER_1_SIZE * 0.0274958766106), (-CHAMFER_1_SIZE * 0.0274958766106, -CHAMFER_1_SIZE * 0.999621916911), (0, 0), align=None)
    extrude(amount=8.571682988, mode=Mode.SUBTRACT)
    with BuildSketch(Plane(origin=(3.90922724, 7.59077276, -23), x_dir=(0.019442520806015454, 0.01944252080601548, 0.9996219169112968), z_dir=(-0.707106781186548, 0.7071067811865471, 0))) as chamfer_1_piece_4_section:
        Polygon((CHAMFER_1_SIZE * 0.999621916911, -CHAMFER_1_SIZE * 0.0274958766106), (-CHAMFER_1_SIZE * 0.0274958766106, -CHAMFER_1_SIZE * 0.999621916911), (0, 0), align=None)
    chamfer_1_piece_4 = extrude(amount=4.693003332, mode=Mode.PRIVATE)
    chamfer_1_piece_4 = split(chamfer_1_piece_4, bisect_by=Plane(origin=(1.5, 9.080759878, -22.829780558), z_dir=(1, 0, 0)), keep=Keep.TOP, mode=Mode.PRIVATE)
    add(chamfer_1_piece_4, mode=Mode.SUBTRACT)
    with BuildSketch(Plane(origin=(0.59077276, 10.90922724, -17), x_dir=(-0.706839436070673, -0.7068394360706738, 0.027495876610589054), z_dir=(0.707106781186548, -0.7071067811865471, 0))) as chamfer_1_piece_5_section:
        Polygon((CHAMFER_1_SIZE * 0.999621916911, CHAMFER_1_SIZE * 0.0274958766106), (-CHAMFER_1_SIZE * 0.0274958766106, CHAMFER_1_SIZE * 0.999621916911), (0, 0), align=None)
    chamfer_1_piece_5 = extrude(amount=4.693003332, mode=Mode.PRIVATE)
    chamfer_1_piece_5 = split(chamfer_1_piece_5, bisect_by=Plane(origin=(1.5, 9.080759878, -17.170219442), z_dir=(1, 0, 0)), keep=Keep.TOP, mode=Mode.PRIVATE)
    add(chamfer_1_piece_5, mode=Mode.SUBTRACT)
    with BuildSketch(Plane(origin=(0.59077276, 6.09077276, -23), x_dir=(0.019442520806014385, -0.019442520806014392, 0.9996219169112968), z_dir=(0.7071067811865477, 0.7071067811865474, 0))) as chamfer_1_piece_6_section:
        Polygon((CHAMFER_1_SIZE * 0.999621916911, -CHAMFER_1_SIZE * 0.0274958766106), (-CHAMFER_1_SIZE * 0.0274958766106, -CHAMFER_1_SIZE * 0.999621916911), (0, 0), align=None)
    chamfer_1_piece_6 = extrude(amount=4.693003332, mode=Mode.PRIVATE)
    chamfer_1_piece_6 = split(chamfer_1_piece_6, bisect_by=Plane(origin=(1.5, 7.919240122, -22.829780558), z_dir=(1, 0, 0)), keep=Keep.TOP, mode=Mode.PRIVATE)
    add(chamfer_1_piece_6, mode=Mode.SUBTRACT)
    with BuildSketch(Plane(origin=(3.90922724, 9.40922724, -17), x_dir=(-0.7068394360706733, 0.7068394360706736, 0.027495876610589113), z_dir=(-0.7071067811865477, -0.7071067811865474, 0))) as chamfer_1_piece_7_section:
        Polygon((CHAMFER_1_SIZE * 0.999621916911, CHAMFER_1_SIZE * 0.0274958766106), (-CHAMFER_1_SIZE * 0.0274958766106, CHAMFER_1_SIZE * 0.999621916911), (0, 0), align=None)
    chamfer_1_piece_7 = extrude(amount=4.693003332, mode=Mode.PRIVATE)
    chamfer_1_piece_7 = split(chamfer_1_piece_7, bisect_by=Plane(origin=(1.5, 7.919240122, -17.170219442), z_dir=(1, 0, 0)), keep=Keep.TOP, mode=Mode.PRIVATE)
    add(chamfer_1_piece_7, mode=Mode.SUBTRACT)

    # 倒角2
    # the kernel refuses this chamfer: 0.5 mm, written as the material it takes off along each edge
    with BuildSketch(Plane(origin=(55.471404521, 8.5, -22.666666667), x_dir=(0, -1, 0), z_dir=(-0.8164965809277265, -8.20464079523654e-15, -0.577350269189625)), Plane(origin=(55.471404521, 8.5, -17.333333333), x_dir=(0.5000000000000033, -0.4999999999999983, 0.7071067811865465), z_dir=(-0.8164965809277265, -8.20464079523654e-15, 0.577350269189625))) as chamfer_2_piece_1:
        Polygon((-0.353553391, 0.204124145), (0.353553391, 0.204124145), (0, -0.40824829), align=None)
    extrude(amount=0.635085296, mode=Mode.SUBTRACT)
    with BuildSketch(Plane(origin=(55, 8.5, -24.285841494), x_dir=(0.687396915264656, 0.7262819568766907, 0), z_dir=(0, 0, 1))) as chamfer_2_piece_2:
        Polygon((CHAMFER_2_SIZE * 0.999621916911, -CHAMFER_2_SIZE * 0.0274958766106), (-CHAMFER_2_SIZE * 0.0274958766106, -CHAMFER_2_SIZE * 0.999621916911), (0, 0), align=None)
    extrude(amount=8.571682988, mode=Mode.SUBTRACT)
    with BuildSketch(Plane(origin=(57.40922724, 10.90922724, -17), x_dir=(-0.019442520806010305, 0.019442520806010277, -0.999621916911297), z_dir=(-0.7071067811865471, -0.707106781186548, 0))) as chamfer_2_piece_3_section:
        Polygon((CHAMFER_2_SIZE * 0.999621916911, CHAMFER_2_SIZE * 0.0274958766106), (-CHAMFER_2_SIZE * 0.0274958766106, CHAMFER_2_SIZE * 0.999621916911), (0, 0), align=None)
    chamfer_2_piece_3 = extrude(amount=4.693003332, mode=Mode.PRIVATE)
    chamfer_2_piece_3 = split(chamfer_2_piece_3, bisect_by=Plane(origin=(56.5, 9.080759878, -17.170219442), z_dir=(-1, 0, 0)), keep=Keep.TOP, mode=Mode.PRIVATE)
    add(chamfer_2_piece_3, mode=Mode.SUBTRACT)
    with BuildSketch(Plane(origin=(57.40922724, 10.90922724, -23), x_dir=(-0.019442520806013754, 0.019442520806013726, 0.9996219169112968), z_dir=(-0.7071067811865471, -0.707106781186548, 0))) as chamfer_2_piece_4_section:
        Polygon((CHAMFER_2_SIZE * 0.999621916911, -CHAMFER_2_SIZE * 0.0274958766106), (-CHAMFER_2_SIZE * 0.0274958766106, -CHAMFER_2_SIZE * 0.999621916911), (0, 0), align=None)
    chamfer_2_piece_4 = extrude(amount=4.693003332, mode=Mode.PRIVATE)
    chamfer_2_piece_4 = split(chamfer_2_piece_4, bisect_by=Plane(origin=(56.5, 9.080759878, -22.829780558), z_dir=(-1, 0, 0)), keep=Keep.TOP, mode=Mode.PRIVATE)
    add(chamfer_2_piece_4, mode=Mode.SUBTRACT)
    with BuildSketch(Plane(origin=(54.09077276, 9.40922724, -17), x_dir=(0.7068394360706738, 0.7068394360706729, 0.027495876610589075), z_dir=(0.7071067811865471, -0.707106781186548, 0))) as chamfer_2_piece_5_section:
        Polygon((CHAMFER_2_SIZE * 0.999621916911, -CHAMFER_2_SIZE * 0.0274958766106), (-CHAMFER_2_SIZE * 0.0274958766106, -CHAMFER_2_SIZE * 0.999621916911), (0, 0), align=None)
    chamfer_2_piece_5 = extrude(amount=4.693003332, mode=Mode.PRIVATE)
    chamfer_2_piece_5 = split(chamfer_2_piece_5, bisect_by=Plane(origin=(56.5, 7.919240122, -17.170219442), z_dir=(-1, 0, 0)), keep=Keep.TOP, mode=Mode.PRIVATE)
    add(chamfer_2_piece_5, mode=Mode.SUBTRACT)
    with BuildSketch(Plane(origin=(54.09077276, 9.40922724, -23), x_dir=(-0.01944252080601548, -0.019442520806015454, 0.9996219169112968), z_dir=(0.7071067811865471, -0.707106781186548, 0))) as chamfer_2_piece_6_section:
        Polygon((CHAMFER_2_SIZE * 0.999621916911, -CHAMFER_2_SIZE * 0.0274958766106), (-CHAMFER_2_SIZE * 0.0274958766106, -CHAMFER_2_SIZE * 0.999621916911), (0, 0), align=None)
    chamfer_2_piece_6 = extrude(amount=4.693003332, mode=Mode.PRIVATE)
    chamfer_2_piece_6 = split(chamfer_2_piece_6, bisect_by=Plane(origin=(56.5, 7.919240122, -22.829780558), z_dir=(-1, 0, 0)), keep=Keep.TOP, mode=Mode.PRIVATE)
    add(chamfer_2_piece_6, mode=Mode.SUBTRACT)


solid = part.part
